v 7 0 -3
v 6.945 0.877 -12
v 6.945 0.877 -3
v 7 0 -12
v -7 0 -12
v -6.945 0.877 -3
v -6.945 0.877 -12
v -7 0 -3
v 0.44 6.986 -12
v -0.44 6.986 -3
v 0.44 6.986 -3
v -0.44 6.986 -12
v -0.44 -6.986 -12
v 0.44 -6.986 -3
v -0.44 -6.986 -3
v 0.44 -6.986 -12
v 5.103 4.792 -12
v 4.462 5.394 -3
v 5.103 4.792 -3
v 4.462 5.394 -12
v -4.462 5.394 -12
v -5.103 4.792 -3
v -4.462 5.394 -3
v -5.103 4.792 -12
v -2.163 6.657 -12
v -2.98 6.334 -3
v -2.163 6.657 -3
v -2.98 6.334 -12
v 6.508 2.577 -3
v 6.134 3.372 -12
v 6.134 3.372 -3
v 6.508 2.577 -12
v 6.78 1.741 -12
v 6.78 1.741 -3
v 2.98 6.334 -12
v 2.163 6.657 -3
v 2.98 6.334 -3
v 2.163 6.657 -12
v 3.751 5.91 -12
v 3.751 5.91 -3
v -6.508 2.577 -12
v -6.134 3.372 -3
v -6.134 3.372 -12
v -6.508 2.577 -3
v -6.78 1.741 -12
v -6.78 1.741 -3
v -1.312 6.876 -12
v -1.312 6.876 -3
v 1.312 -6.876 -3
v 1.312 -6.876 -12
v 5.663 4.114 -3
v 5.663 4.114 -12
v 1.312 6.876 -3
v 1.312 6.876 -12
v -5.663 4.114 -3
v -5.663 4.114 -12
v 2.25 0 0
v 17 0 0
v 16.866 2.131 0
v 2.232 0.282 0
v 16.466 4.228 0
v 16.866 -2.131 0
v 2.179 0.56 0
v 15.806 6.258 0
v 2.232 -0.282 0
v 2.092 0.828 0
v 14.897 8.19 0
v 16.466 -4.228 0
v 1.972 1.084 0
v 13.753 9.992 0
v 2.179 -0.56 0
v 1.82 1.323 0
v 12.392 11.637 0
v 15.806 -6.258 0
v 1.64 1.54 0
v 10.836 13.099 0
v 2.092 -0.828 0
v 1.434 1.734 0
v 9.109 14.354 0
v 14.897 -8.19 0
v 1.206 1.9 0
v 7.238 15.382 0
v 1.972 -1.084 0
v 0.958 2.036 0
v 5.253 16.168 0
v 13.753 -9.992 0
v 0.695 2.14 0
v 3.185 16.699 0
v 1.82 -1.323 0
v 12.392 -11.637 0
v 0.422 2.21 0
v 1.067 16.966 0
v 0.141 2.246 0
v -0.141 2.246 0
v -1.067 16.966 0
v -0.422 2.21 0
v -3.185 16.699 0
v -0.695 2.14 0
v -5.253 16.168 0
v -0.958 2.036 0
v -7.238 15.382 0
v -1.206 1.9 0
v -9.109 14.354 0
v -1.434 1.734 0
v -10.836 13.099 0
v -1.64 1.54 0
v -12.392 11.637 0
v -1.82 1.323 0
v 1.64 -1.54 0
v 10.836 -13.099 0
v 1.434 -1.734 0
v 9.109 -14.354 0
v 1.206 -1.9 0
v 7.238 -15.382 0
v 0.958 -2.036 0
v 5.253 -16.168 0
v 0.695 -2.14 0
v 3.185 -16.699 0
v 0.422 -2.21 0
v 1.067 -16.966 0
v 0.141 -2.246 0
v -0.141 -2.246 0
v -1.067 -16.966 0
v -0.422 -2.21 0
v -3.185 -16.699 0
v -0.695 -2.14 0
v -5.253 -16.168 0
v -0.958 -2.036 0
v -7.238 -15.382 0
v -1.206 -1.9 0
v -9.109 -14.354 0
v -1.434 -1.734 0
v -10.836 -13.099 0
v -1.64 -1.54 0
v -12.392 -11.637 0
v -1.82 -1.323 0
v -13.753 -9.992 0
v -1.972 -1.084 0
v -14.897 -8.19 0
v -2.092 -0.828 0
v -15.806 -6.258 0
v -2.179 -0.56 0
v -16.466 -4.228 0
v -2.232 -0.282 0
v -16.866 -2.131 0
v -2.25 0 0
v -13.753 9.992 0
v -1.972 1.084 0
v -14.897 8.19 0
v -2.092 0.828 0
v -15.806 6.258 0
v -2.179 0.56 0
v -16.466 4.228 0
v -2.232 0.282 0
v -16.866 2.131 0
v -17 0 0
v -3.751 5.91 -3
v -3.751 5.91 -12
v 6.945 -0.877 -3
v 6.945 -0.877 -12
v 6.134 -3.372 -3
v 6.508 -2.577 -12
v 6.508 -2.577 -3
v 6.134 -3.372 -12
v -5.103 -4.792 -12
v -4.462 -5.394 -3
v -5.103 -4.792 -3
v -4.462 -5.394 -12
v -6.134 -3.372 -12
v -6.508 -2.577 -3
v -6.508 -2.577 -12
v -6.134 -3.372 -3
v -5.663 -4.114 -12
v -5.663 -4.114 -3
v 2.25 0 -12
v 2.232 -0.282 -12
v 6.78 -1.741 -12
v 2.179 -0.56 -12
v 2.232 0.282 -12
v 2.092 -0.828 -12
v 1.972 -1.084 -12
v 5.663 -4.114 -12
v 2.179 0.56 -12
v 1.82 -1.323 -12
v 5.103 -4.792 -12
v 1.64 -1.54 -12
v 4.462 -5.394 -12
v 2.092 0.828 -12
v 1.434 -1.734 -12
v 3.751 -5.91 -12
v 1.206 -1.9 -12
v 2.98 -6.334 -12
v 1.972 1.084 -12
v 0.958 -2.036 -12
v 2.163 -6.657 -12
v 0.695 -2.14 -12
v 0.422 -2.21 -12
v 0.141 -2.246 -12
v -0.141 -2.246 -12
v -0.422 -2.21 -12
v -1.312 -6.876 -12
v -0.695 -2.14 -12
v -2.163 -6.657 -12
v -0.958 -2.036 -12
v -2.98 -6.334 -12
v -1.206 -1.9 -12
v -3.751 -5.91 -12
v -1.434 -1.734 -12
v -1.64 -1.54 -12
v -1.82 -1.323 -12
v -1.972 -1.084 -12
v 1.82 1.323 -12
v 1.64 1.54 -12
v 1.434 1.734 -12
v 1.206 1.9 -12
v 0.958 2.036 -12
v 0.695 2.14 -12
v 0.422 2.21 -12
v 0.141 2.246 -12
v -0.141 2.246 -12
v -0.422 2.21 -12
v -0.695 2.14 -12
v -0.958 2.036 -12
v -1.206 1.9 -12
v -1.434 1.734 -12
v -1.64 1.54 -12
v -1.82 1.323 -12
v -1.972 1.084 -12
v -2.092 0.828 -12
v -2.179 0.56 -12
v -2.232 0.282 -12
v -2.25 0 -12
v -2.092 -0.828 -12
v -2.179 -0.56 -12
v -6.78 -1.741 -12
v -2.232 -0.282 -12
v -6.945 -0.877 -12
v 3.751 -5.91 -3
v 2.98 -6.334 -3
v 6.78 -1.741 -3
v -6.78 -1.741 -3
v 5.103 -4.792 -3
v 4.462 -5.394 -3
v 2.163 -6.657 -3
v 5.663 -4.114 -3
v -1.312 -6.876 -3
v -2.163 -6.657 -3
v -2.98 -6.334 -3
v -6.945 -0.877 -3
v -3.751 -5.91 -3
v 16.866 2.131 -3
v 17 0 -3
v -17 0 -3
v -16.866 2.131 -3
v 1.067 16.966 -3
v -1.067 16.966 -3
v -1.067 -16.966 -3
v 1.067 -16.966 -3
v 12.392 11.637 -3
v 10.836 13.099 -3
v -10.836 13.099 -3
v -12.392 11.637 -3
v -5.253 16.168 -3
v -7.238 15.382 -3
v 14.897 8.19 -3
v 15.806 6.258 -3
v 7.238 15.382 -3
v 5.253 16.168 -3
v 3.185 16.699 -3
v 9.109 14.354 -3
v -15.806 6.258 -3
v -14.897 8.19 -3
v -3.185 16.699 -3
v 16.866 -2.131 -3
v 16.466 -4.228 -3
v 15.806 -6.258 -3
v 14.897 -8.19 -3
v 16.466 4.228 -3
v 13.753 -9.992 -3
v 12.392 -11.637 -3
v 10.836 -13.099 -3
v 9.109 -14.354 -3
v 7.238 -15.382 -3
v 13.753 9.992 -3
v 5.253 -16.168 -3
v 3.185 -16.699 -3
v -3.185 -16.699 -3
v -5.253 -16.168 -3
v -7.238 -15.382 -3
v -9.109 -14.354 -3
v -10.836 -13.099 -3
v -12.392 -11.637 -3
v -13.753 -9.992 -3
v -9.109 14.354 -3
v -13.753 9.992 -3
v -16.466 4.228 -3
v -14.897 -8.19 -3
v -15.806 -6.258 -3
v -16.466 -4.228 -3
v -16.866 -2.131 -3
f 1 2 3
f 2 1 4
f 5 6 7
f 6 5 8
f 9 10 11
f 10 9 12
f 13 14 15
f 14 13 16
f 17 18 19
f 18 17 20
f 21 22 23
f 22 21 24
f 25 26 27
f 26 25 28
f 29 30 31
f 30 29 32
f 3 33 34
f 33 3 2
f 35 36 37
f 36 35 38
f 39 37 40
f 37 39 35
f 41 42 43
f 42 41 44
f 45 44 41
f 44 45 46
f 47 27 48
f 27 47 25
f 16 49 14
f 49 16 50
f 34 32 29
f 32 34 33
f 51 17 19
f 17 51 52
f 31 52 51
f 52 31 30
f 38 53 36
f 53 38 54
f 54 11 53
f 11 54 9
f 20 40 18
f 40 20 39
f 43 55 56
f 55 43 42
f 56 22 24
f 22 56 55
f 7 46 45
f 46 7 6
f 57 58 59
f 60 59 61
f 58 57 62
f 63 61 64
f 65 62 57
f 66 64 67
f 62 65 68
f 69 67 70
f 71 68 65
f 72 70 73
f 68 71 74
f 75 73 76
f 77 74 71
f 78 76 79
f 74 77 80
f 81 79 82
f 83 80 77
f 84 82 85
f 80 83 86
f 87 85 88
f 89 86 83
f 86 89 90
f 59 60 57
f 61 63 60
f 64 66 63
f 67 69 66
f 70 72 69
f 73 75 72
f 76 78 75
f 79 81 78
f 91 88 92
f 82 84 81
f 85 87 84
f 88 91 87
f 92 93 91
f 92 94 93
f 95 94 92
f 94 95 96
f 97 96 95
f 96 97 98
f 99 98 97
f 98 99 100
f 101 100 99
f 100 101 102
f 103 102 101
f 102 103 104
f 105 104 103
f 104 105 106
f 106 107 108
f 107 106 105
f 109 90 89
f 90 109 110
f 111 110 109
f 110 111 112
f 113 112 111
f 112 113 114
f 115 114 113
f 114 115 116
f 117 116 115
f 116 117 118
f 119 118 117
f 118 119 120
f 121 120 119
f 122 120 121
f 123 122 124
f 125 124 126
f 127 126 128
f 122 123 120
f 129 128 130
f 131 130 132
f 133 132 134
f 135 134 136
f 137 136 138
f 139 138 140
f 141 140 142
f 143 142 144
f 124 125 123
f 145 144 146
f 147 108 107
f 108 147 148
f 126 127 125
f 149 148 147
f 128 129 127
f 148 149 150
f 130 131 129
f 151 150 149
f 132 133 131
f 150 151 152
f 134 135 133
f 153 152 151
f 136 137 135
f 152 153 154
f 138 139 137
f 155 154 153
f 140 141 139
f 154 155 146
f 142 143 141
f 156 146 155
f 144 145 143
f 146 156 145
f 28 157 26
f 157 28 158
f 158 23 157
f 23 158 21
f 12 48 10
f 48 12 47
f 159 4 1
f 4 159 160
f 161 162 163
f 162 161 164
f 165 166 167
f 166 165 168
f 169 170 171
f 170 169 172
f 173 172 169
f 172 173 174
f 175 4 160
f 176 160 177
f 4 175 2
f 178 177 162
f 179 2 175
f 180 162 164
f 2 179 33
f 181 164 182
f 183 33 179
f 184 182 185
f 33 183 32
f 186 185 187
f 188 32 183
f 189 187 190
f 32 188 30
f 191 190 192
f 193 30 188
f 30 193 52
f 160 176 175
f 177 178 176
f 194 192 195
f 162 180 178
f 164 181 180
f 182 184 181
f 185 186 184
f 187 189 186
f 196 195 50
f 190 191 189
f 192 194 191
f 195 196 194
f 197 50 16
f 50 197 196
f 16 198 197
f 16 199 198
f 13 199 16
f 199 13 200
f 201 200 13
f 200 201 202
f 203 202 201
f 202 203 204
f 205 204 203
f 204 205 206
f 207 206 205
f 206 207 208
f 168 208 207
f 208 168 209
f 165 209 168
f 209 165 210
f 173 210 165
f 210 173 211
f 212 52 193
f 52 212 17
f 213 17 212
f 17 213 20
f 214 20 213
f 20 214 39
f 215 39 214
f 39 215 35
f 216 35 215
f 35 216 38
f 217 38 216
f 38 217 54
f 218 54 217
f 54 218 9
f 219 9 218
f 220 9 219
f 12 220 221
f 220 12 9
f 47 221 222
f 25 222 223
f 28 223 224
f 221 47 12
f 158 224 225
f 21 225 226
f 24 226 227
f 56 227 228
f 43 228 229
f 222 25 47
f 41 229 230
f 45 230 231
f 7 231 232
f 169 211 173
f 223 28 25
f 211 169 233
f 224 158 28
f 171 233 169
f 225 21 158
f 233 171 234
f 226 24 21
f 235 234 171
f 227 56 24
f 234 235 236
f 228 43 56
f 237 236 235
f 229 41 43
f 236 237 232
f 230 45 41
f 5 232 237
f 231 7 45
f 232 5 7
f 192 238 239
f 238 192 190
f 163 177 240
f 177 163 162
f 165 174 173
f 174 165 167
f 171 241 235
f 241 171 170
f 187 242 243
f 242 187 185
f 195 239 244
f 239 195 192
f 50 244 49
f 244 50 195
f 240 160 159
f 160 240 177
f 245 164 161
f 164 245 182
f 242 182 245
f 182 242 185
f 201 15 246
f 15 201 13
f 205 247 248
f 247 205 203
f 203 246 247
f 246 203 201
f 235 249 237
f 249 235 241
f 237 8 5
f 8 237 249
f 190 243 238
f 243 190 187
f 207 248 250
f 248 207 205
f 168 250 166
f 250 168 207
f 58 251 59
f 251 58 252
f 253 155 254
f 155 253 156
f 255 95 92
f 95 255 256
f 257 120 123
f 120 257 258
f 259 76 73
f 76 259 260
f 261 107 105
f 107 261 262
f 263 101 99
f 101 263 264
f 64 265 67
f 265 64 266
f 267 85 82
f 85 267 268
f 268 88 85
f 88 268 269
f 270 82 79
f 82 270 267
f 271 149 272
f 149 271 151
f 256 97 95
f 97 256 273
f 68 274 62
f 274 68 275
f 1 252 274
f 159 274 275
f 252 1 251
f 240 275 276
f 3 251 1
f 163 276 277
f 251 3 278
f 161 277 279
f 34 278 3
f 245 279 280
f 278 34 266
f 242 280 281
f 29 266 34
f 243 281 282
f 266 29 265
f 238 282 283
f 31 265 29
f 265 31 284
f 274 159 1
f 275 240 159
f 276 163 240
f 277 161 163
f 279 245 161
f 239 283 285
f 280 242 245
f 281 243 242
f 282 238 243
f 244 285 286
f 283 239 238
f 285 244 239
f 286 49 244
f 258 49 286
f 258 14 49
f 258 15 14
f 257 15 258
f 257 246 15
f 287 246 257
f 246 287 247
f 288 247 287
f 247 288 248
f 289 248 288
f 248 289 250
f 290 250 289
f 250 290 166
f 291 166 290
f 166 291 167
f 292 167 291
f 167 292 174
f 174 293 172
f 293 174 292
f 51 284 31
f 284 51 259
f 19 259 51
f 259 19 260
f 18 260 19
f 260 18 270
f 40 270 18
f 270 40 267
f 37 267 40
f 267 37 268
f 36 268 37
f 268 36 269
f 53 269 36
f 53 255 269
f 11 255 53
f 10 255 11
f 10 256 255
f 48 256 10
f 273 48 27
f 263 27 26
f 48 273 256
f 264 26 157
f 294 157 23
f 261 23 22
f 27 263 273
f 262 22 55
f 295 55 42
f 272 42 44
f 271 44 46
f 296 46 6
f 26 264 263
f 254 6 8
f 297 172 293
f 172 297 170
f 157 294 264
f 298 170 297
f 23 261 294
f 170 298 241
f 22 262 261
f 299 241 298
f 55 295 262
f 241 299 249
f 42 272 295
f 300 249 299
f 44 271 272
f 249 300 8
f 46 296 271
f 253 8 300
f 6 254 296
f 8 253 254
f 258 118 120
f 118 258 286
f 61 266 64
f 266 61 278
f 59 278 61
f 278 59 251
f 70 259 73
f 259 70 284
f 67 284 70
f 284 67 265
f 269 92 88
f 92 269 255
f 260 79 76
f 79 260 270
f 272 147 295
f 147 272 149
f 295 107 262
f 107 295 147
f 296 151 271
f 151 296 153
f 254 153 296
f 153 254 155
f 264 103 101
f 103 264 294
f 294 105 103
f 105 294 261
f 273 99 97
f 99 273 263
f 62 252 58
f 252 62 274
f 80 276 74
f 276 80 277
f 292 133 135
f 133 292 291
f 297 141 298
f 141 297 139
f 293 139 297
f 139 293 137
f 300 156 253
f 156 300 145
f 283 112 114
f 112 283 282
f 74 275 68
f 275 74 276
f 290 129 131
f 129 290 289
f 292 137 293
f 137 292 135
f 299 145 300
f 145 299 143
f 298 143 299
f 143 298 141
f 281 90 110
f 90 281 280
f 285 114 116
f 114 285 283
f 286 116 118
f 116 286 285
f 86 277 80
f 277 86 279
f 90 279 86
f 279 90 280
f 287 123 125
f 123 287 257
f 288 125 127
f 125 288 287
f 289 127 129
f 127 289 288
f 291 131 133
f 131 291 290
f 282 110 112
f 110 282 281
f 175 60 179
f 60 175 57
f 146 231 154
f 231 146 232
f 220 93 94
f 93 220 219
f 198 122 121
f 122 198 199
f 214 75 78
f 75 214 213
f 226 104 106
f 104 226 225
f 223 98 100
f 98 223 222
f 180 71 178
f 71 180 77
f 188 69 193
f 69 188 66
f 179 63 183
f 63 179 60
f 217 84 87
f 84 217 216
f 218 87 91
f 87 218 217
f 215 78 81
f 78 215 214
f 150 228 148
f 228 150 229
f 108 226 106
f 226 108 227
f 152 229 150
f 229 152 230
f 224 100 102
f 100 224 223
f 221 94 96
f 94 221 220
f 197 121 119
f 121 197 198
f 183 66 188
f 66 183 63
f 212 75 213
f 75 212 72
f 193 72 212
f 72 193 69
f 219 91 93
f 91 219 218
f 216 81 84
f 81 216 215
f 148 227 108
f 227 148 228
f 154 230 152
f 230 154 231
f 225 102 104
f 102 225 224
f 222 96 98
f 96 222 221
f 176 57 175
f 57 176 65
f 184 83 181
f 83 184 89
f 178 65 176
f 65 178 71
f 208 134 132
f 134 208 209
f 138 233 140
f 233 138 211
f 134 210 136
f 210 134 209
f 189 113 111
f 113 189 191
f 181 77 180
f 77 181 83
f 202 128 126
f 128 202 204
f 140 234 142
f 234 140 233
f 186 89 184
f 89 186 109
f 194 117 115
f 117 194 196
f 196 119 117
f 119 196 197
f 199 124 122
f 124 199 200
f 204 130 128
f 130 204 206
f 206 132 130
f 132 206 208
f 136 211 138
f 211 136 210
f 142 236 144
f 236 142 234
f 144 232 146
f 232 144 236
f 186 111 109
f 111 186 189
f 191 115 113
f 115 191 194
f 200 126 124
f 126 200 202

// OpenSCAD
$fn = 50;


difference() {
	union() {
		translate(v = [0, 0, -12.0000000000]) {
			cylinder(h = 12, r = 7.0000000000);
		}
		translate(v = [0, 0, -3.0000000000]) {
			cylinder(h = 3, r = 17.0000000000);
		}
	}
	union() {
		#translate(v = [0, 0, -12]) {
			cylinder(h = 12, r = 2.2500000000);
		}
	}
}
